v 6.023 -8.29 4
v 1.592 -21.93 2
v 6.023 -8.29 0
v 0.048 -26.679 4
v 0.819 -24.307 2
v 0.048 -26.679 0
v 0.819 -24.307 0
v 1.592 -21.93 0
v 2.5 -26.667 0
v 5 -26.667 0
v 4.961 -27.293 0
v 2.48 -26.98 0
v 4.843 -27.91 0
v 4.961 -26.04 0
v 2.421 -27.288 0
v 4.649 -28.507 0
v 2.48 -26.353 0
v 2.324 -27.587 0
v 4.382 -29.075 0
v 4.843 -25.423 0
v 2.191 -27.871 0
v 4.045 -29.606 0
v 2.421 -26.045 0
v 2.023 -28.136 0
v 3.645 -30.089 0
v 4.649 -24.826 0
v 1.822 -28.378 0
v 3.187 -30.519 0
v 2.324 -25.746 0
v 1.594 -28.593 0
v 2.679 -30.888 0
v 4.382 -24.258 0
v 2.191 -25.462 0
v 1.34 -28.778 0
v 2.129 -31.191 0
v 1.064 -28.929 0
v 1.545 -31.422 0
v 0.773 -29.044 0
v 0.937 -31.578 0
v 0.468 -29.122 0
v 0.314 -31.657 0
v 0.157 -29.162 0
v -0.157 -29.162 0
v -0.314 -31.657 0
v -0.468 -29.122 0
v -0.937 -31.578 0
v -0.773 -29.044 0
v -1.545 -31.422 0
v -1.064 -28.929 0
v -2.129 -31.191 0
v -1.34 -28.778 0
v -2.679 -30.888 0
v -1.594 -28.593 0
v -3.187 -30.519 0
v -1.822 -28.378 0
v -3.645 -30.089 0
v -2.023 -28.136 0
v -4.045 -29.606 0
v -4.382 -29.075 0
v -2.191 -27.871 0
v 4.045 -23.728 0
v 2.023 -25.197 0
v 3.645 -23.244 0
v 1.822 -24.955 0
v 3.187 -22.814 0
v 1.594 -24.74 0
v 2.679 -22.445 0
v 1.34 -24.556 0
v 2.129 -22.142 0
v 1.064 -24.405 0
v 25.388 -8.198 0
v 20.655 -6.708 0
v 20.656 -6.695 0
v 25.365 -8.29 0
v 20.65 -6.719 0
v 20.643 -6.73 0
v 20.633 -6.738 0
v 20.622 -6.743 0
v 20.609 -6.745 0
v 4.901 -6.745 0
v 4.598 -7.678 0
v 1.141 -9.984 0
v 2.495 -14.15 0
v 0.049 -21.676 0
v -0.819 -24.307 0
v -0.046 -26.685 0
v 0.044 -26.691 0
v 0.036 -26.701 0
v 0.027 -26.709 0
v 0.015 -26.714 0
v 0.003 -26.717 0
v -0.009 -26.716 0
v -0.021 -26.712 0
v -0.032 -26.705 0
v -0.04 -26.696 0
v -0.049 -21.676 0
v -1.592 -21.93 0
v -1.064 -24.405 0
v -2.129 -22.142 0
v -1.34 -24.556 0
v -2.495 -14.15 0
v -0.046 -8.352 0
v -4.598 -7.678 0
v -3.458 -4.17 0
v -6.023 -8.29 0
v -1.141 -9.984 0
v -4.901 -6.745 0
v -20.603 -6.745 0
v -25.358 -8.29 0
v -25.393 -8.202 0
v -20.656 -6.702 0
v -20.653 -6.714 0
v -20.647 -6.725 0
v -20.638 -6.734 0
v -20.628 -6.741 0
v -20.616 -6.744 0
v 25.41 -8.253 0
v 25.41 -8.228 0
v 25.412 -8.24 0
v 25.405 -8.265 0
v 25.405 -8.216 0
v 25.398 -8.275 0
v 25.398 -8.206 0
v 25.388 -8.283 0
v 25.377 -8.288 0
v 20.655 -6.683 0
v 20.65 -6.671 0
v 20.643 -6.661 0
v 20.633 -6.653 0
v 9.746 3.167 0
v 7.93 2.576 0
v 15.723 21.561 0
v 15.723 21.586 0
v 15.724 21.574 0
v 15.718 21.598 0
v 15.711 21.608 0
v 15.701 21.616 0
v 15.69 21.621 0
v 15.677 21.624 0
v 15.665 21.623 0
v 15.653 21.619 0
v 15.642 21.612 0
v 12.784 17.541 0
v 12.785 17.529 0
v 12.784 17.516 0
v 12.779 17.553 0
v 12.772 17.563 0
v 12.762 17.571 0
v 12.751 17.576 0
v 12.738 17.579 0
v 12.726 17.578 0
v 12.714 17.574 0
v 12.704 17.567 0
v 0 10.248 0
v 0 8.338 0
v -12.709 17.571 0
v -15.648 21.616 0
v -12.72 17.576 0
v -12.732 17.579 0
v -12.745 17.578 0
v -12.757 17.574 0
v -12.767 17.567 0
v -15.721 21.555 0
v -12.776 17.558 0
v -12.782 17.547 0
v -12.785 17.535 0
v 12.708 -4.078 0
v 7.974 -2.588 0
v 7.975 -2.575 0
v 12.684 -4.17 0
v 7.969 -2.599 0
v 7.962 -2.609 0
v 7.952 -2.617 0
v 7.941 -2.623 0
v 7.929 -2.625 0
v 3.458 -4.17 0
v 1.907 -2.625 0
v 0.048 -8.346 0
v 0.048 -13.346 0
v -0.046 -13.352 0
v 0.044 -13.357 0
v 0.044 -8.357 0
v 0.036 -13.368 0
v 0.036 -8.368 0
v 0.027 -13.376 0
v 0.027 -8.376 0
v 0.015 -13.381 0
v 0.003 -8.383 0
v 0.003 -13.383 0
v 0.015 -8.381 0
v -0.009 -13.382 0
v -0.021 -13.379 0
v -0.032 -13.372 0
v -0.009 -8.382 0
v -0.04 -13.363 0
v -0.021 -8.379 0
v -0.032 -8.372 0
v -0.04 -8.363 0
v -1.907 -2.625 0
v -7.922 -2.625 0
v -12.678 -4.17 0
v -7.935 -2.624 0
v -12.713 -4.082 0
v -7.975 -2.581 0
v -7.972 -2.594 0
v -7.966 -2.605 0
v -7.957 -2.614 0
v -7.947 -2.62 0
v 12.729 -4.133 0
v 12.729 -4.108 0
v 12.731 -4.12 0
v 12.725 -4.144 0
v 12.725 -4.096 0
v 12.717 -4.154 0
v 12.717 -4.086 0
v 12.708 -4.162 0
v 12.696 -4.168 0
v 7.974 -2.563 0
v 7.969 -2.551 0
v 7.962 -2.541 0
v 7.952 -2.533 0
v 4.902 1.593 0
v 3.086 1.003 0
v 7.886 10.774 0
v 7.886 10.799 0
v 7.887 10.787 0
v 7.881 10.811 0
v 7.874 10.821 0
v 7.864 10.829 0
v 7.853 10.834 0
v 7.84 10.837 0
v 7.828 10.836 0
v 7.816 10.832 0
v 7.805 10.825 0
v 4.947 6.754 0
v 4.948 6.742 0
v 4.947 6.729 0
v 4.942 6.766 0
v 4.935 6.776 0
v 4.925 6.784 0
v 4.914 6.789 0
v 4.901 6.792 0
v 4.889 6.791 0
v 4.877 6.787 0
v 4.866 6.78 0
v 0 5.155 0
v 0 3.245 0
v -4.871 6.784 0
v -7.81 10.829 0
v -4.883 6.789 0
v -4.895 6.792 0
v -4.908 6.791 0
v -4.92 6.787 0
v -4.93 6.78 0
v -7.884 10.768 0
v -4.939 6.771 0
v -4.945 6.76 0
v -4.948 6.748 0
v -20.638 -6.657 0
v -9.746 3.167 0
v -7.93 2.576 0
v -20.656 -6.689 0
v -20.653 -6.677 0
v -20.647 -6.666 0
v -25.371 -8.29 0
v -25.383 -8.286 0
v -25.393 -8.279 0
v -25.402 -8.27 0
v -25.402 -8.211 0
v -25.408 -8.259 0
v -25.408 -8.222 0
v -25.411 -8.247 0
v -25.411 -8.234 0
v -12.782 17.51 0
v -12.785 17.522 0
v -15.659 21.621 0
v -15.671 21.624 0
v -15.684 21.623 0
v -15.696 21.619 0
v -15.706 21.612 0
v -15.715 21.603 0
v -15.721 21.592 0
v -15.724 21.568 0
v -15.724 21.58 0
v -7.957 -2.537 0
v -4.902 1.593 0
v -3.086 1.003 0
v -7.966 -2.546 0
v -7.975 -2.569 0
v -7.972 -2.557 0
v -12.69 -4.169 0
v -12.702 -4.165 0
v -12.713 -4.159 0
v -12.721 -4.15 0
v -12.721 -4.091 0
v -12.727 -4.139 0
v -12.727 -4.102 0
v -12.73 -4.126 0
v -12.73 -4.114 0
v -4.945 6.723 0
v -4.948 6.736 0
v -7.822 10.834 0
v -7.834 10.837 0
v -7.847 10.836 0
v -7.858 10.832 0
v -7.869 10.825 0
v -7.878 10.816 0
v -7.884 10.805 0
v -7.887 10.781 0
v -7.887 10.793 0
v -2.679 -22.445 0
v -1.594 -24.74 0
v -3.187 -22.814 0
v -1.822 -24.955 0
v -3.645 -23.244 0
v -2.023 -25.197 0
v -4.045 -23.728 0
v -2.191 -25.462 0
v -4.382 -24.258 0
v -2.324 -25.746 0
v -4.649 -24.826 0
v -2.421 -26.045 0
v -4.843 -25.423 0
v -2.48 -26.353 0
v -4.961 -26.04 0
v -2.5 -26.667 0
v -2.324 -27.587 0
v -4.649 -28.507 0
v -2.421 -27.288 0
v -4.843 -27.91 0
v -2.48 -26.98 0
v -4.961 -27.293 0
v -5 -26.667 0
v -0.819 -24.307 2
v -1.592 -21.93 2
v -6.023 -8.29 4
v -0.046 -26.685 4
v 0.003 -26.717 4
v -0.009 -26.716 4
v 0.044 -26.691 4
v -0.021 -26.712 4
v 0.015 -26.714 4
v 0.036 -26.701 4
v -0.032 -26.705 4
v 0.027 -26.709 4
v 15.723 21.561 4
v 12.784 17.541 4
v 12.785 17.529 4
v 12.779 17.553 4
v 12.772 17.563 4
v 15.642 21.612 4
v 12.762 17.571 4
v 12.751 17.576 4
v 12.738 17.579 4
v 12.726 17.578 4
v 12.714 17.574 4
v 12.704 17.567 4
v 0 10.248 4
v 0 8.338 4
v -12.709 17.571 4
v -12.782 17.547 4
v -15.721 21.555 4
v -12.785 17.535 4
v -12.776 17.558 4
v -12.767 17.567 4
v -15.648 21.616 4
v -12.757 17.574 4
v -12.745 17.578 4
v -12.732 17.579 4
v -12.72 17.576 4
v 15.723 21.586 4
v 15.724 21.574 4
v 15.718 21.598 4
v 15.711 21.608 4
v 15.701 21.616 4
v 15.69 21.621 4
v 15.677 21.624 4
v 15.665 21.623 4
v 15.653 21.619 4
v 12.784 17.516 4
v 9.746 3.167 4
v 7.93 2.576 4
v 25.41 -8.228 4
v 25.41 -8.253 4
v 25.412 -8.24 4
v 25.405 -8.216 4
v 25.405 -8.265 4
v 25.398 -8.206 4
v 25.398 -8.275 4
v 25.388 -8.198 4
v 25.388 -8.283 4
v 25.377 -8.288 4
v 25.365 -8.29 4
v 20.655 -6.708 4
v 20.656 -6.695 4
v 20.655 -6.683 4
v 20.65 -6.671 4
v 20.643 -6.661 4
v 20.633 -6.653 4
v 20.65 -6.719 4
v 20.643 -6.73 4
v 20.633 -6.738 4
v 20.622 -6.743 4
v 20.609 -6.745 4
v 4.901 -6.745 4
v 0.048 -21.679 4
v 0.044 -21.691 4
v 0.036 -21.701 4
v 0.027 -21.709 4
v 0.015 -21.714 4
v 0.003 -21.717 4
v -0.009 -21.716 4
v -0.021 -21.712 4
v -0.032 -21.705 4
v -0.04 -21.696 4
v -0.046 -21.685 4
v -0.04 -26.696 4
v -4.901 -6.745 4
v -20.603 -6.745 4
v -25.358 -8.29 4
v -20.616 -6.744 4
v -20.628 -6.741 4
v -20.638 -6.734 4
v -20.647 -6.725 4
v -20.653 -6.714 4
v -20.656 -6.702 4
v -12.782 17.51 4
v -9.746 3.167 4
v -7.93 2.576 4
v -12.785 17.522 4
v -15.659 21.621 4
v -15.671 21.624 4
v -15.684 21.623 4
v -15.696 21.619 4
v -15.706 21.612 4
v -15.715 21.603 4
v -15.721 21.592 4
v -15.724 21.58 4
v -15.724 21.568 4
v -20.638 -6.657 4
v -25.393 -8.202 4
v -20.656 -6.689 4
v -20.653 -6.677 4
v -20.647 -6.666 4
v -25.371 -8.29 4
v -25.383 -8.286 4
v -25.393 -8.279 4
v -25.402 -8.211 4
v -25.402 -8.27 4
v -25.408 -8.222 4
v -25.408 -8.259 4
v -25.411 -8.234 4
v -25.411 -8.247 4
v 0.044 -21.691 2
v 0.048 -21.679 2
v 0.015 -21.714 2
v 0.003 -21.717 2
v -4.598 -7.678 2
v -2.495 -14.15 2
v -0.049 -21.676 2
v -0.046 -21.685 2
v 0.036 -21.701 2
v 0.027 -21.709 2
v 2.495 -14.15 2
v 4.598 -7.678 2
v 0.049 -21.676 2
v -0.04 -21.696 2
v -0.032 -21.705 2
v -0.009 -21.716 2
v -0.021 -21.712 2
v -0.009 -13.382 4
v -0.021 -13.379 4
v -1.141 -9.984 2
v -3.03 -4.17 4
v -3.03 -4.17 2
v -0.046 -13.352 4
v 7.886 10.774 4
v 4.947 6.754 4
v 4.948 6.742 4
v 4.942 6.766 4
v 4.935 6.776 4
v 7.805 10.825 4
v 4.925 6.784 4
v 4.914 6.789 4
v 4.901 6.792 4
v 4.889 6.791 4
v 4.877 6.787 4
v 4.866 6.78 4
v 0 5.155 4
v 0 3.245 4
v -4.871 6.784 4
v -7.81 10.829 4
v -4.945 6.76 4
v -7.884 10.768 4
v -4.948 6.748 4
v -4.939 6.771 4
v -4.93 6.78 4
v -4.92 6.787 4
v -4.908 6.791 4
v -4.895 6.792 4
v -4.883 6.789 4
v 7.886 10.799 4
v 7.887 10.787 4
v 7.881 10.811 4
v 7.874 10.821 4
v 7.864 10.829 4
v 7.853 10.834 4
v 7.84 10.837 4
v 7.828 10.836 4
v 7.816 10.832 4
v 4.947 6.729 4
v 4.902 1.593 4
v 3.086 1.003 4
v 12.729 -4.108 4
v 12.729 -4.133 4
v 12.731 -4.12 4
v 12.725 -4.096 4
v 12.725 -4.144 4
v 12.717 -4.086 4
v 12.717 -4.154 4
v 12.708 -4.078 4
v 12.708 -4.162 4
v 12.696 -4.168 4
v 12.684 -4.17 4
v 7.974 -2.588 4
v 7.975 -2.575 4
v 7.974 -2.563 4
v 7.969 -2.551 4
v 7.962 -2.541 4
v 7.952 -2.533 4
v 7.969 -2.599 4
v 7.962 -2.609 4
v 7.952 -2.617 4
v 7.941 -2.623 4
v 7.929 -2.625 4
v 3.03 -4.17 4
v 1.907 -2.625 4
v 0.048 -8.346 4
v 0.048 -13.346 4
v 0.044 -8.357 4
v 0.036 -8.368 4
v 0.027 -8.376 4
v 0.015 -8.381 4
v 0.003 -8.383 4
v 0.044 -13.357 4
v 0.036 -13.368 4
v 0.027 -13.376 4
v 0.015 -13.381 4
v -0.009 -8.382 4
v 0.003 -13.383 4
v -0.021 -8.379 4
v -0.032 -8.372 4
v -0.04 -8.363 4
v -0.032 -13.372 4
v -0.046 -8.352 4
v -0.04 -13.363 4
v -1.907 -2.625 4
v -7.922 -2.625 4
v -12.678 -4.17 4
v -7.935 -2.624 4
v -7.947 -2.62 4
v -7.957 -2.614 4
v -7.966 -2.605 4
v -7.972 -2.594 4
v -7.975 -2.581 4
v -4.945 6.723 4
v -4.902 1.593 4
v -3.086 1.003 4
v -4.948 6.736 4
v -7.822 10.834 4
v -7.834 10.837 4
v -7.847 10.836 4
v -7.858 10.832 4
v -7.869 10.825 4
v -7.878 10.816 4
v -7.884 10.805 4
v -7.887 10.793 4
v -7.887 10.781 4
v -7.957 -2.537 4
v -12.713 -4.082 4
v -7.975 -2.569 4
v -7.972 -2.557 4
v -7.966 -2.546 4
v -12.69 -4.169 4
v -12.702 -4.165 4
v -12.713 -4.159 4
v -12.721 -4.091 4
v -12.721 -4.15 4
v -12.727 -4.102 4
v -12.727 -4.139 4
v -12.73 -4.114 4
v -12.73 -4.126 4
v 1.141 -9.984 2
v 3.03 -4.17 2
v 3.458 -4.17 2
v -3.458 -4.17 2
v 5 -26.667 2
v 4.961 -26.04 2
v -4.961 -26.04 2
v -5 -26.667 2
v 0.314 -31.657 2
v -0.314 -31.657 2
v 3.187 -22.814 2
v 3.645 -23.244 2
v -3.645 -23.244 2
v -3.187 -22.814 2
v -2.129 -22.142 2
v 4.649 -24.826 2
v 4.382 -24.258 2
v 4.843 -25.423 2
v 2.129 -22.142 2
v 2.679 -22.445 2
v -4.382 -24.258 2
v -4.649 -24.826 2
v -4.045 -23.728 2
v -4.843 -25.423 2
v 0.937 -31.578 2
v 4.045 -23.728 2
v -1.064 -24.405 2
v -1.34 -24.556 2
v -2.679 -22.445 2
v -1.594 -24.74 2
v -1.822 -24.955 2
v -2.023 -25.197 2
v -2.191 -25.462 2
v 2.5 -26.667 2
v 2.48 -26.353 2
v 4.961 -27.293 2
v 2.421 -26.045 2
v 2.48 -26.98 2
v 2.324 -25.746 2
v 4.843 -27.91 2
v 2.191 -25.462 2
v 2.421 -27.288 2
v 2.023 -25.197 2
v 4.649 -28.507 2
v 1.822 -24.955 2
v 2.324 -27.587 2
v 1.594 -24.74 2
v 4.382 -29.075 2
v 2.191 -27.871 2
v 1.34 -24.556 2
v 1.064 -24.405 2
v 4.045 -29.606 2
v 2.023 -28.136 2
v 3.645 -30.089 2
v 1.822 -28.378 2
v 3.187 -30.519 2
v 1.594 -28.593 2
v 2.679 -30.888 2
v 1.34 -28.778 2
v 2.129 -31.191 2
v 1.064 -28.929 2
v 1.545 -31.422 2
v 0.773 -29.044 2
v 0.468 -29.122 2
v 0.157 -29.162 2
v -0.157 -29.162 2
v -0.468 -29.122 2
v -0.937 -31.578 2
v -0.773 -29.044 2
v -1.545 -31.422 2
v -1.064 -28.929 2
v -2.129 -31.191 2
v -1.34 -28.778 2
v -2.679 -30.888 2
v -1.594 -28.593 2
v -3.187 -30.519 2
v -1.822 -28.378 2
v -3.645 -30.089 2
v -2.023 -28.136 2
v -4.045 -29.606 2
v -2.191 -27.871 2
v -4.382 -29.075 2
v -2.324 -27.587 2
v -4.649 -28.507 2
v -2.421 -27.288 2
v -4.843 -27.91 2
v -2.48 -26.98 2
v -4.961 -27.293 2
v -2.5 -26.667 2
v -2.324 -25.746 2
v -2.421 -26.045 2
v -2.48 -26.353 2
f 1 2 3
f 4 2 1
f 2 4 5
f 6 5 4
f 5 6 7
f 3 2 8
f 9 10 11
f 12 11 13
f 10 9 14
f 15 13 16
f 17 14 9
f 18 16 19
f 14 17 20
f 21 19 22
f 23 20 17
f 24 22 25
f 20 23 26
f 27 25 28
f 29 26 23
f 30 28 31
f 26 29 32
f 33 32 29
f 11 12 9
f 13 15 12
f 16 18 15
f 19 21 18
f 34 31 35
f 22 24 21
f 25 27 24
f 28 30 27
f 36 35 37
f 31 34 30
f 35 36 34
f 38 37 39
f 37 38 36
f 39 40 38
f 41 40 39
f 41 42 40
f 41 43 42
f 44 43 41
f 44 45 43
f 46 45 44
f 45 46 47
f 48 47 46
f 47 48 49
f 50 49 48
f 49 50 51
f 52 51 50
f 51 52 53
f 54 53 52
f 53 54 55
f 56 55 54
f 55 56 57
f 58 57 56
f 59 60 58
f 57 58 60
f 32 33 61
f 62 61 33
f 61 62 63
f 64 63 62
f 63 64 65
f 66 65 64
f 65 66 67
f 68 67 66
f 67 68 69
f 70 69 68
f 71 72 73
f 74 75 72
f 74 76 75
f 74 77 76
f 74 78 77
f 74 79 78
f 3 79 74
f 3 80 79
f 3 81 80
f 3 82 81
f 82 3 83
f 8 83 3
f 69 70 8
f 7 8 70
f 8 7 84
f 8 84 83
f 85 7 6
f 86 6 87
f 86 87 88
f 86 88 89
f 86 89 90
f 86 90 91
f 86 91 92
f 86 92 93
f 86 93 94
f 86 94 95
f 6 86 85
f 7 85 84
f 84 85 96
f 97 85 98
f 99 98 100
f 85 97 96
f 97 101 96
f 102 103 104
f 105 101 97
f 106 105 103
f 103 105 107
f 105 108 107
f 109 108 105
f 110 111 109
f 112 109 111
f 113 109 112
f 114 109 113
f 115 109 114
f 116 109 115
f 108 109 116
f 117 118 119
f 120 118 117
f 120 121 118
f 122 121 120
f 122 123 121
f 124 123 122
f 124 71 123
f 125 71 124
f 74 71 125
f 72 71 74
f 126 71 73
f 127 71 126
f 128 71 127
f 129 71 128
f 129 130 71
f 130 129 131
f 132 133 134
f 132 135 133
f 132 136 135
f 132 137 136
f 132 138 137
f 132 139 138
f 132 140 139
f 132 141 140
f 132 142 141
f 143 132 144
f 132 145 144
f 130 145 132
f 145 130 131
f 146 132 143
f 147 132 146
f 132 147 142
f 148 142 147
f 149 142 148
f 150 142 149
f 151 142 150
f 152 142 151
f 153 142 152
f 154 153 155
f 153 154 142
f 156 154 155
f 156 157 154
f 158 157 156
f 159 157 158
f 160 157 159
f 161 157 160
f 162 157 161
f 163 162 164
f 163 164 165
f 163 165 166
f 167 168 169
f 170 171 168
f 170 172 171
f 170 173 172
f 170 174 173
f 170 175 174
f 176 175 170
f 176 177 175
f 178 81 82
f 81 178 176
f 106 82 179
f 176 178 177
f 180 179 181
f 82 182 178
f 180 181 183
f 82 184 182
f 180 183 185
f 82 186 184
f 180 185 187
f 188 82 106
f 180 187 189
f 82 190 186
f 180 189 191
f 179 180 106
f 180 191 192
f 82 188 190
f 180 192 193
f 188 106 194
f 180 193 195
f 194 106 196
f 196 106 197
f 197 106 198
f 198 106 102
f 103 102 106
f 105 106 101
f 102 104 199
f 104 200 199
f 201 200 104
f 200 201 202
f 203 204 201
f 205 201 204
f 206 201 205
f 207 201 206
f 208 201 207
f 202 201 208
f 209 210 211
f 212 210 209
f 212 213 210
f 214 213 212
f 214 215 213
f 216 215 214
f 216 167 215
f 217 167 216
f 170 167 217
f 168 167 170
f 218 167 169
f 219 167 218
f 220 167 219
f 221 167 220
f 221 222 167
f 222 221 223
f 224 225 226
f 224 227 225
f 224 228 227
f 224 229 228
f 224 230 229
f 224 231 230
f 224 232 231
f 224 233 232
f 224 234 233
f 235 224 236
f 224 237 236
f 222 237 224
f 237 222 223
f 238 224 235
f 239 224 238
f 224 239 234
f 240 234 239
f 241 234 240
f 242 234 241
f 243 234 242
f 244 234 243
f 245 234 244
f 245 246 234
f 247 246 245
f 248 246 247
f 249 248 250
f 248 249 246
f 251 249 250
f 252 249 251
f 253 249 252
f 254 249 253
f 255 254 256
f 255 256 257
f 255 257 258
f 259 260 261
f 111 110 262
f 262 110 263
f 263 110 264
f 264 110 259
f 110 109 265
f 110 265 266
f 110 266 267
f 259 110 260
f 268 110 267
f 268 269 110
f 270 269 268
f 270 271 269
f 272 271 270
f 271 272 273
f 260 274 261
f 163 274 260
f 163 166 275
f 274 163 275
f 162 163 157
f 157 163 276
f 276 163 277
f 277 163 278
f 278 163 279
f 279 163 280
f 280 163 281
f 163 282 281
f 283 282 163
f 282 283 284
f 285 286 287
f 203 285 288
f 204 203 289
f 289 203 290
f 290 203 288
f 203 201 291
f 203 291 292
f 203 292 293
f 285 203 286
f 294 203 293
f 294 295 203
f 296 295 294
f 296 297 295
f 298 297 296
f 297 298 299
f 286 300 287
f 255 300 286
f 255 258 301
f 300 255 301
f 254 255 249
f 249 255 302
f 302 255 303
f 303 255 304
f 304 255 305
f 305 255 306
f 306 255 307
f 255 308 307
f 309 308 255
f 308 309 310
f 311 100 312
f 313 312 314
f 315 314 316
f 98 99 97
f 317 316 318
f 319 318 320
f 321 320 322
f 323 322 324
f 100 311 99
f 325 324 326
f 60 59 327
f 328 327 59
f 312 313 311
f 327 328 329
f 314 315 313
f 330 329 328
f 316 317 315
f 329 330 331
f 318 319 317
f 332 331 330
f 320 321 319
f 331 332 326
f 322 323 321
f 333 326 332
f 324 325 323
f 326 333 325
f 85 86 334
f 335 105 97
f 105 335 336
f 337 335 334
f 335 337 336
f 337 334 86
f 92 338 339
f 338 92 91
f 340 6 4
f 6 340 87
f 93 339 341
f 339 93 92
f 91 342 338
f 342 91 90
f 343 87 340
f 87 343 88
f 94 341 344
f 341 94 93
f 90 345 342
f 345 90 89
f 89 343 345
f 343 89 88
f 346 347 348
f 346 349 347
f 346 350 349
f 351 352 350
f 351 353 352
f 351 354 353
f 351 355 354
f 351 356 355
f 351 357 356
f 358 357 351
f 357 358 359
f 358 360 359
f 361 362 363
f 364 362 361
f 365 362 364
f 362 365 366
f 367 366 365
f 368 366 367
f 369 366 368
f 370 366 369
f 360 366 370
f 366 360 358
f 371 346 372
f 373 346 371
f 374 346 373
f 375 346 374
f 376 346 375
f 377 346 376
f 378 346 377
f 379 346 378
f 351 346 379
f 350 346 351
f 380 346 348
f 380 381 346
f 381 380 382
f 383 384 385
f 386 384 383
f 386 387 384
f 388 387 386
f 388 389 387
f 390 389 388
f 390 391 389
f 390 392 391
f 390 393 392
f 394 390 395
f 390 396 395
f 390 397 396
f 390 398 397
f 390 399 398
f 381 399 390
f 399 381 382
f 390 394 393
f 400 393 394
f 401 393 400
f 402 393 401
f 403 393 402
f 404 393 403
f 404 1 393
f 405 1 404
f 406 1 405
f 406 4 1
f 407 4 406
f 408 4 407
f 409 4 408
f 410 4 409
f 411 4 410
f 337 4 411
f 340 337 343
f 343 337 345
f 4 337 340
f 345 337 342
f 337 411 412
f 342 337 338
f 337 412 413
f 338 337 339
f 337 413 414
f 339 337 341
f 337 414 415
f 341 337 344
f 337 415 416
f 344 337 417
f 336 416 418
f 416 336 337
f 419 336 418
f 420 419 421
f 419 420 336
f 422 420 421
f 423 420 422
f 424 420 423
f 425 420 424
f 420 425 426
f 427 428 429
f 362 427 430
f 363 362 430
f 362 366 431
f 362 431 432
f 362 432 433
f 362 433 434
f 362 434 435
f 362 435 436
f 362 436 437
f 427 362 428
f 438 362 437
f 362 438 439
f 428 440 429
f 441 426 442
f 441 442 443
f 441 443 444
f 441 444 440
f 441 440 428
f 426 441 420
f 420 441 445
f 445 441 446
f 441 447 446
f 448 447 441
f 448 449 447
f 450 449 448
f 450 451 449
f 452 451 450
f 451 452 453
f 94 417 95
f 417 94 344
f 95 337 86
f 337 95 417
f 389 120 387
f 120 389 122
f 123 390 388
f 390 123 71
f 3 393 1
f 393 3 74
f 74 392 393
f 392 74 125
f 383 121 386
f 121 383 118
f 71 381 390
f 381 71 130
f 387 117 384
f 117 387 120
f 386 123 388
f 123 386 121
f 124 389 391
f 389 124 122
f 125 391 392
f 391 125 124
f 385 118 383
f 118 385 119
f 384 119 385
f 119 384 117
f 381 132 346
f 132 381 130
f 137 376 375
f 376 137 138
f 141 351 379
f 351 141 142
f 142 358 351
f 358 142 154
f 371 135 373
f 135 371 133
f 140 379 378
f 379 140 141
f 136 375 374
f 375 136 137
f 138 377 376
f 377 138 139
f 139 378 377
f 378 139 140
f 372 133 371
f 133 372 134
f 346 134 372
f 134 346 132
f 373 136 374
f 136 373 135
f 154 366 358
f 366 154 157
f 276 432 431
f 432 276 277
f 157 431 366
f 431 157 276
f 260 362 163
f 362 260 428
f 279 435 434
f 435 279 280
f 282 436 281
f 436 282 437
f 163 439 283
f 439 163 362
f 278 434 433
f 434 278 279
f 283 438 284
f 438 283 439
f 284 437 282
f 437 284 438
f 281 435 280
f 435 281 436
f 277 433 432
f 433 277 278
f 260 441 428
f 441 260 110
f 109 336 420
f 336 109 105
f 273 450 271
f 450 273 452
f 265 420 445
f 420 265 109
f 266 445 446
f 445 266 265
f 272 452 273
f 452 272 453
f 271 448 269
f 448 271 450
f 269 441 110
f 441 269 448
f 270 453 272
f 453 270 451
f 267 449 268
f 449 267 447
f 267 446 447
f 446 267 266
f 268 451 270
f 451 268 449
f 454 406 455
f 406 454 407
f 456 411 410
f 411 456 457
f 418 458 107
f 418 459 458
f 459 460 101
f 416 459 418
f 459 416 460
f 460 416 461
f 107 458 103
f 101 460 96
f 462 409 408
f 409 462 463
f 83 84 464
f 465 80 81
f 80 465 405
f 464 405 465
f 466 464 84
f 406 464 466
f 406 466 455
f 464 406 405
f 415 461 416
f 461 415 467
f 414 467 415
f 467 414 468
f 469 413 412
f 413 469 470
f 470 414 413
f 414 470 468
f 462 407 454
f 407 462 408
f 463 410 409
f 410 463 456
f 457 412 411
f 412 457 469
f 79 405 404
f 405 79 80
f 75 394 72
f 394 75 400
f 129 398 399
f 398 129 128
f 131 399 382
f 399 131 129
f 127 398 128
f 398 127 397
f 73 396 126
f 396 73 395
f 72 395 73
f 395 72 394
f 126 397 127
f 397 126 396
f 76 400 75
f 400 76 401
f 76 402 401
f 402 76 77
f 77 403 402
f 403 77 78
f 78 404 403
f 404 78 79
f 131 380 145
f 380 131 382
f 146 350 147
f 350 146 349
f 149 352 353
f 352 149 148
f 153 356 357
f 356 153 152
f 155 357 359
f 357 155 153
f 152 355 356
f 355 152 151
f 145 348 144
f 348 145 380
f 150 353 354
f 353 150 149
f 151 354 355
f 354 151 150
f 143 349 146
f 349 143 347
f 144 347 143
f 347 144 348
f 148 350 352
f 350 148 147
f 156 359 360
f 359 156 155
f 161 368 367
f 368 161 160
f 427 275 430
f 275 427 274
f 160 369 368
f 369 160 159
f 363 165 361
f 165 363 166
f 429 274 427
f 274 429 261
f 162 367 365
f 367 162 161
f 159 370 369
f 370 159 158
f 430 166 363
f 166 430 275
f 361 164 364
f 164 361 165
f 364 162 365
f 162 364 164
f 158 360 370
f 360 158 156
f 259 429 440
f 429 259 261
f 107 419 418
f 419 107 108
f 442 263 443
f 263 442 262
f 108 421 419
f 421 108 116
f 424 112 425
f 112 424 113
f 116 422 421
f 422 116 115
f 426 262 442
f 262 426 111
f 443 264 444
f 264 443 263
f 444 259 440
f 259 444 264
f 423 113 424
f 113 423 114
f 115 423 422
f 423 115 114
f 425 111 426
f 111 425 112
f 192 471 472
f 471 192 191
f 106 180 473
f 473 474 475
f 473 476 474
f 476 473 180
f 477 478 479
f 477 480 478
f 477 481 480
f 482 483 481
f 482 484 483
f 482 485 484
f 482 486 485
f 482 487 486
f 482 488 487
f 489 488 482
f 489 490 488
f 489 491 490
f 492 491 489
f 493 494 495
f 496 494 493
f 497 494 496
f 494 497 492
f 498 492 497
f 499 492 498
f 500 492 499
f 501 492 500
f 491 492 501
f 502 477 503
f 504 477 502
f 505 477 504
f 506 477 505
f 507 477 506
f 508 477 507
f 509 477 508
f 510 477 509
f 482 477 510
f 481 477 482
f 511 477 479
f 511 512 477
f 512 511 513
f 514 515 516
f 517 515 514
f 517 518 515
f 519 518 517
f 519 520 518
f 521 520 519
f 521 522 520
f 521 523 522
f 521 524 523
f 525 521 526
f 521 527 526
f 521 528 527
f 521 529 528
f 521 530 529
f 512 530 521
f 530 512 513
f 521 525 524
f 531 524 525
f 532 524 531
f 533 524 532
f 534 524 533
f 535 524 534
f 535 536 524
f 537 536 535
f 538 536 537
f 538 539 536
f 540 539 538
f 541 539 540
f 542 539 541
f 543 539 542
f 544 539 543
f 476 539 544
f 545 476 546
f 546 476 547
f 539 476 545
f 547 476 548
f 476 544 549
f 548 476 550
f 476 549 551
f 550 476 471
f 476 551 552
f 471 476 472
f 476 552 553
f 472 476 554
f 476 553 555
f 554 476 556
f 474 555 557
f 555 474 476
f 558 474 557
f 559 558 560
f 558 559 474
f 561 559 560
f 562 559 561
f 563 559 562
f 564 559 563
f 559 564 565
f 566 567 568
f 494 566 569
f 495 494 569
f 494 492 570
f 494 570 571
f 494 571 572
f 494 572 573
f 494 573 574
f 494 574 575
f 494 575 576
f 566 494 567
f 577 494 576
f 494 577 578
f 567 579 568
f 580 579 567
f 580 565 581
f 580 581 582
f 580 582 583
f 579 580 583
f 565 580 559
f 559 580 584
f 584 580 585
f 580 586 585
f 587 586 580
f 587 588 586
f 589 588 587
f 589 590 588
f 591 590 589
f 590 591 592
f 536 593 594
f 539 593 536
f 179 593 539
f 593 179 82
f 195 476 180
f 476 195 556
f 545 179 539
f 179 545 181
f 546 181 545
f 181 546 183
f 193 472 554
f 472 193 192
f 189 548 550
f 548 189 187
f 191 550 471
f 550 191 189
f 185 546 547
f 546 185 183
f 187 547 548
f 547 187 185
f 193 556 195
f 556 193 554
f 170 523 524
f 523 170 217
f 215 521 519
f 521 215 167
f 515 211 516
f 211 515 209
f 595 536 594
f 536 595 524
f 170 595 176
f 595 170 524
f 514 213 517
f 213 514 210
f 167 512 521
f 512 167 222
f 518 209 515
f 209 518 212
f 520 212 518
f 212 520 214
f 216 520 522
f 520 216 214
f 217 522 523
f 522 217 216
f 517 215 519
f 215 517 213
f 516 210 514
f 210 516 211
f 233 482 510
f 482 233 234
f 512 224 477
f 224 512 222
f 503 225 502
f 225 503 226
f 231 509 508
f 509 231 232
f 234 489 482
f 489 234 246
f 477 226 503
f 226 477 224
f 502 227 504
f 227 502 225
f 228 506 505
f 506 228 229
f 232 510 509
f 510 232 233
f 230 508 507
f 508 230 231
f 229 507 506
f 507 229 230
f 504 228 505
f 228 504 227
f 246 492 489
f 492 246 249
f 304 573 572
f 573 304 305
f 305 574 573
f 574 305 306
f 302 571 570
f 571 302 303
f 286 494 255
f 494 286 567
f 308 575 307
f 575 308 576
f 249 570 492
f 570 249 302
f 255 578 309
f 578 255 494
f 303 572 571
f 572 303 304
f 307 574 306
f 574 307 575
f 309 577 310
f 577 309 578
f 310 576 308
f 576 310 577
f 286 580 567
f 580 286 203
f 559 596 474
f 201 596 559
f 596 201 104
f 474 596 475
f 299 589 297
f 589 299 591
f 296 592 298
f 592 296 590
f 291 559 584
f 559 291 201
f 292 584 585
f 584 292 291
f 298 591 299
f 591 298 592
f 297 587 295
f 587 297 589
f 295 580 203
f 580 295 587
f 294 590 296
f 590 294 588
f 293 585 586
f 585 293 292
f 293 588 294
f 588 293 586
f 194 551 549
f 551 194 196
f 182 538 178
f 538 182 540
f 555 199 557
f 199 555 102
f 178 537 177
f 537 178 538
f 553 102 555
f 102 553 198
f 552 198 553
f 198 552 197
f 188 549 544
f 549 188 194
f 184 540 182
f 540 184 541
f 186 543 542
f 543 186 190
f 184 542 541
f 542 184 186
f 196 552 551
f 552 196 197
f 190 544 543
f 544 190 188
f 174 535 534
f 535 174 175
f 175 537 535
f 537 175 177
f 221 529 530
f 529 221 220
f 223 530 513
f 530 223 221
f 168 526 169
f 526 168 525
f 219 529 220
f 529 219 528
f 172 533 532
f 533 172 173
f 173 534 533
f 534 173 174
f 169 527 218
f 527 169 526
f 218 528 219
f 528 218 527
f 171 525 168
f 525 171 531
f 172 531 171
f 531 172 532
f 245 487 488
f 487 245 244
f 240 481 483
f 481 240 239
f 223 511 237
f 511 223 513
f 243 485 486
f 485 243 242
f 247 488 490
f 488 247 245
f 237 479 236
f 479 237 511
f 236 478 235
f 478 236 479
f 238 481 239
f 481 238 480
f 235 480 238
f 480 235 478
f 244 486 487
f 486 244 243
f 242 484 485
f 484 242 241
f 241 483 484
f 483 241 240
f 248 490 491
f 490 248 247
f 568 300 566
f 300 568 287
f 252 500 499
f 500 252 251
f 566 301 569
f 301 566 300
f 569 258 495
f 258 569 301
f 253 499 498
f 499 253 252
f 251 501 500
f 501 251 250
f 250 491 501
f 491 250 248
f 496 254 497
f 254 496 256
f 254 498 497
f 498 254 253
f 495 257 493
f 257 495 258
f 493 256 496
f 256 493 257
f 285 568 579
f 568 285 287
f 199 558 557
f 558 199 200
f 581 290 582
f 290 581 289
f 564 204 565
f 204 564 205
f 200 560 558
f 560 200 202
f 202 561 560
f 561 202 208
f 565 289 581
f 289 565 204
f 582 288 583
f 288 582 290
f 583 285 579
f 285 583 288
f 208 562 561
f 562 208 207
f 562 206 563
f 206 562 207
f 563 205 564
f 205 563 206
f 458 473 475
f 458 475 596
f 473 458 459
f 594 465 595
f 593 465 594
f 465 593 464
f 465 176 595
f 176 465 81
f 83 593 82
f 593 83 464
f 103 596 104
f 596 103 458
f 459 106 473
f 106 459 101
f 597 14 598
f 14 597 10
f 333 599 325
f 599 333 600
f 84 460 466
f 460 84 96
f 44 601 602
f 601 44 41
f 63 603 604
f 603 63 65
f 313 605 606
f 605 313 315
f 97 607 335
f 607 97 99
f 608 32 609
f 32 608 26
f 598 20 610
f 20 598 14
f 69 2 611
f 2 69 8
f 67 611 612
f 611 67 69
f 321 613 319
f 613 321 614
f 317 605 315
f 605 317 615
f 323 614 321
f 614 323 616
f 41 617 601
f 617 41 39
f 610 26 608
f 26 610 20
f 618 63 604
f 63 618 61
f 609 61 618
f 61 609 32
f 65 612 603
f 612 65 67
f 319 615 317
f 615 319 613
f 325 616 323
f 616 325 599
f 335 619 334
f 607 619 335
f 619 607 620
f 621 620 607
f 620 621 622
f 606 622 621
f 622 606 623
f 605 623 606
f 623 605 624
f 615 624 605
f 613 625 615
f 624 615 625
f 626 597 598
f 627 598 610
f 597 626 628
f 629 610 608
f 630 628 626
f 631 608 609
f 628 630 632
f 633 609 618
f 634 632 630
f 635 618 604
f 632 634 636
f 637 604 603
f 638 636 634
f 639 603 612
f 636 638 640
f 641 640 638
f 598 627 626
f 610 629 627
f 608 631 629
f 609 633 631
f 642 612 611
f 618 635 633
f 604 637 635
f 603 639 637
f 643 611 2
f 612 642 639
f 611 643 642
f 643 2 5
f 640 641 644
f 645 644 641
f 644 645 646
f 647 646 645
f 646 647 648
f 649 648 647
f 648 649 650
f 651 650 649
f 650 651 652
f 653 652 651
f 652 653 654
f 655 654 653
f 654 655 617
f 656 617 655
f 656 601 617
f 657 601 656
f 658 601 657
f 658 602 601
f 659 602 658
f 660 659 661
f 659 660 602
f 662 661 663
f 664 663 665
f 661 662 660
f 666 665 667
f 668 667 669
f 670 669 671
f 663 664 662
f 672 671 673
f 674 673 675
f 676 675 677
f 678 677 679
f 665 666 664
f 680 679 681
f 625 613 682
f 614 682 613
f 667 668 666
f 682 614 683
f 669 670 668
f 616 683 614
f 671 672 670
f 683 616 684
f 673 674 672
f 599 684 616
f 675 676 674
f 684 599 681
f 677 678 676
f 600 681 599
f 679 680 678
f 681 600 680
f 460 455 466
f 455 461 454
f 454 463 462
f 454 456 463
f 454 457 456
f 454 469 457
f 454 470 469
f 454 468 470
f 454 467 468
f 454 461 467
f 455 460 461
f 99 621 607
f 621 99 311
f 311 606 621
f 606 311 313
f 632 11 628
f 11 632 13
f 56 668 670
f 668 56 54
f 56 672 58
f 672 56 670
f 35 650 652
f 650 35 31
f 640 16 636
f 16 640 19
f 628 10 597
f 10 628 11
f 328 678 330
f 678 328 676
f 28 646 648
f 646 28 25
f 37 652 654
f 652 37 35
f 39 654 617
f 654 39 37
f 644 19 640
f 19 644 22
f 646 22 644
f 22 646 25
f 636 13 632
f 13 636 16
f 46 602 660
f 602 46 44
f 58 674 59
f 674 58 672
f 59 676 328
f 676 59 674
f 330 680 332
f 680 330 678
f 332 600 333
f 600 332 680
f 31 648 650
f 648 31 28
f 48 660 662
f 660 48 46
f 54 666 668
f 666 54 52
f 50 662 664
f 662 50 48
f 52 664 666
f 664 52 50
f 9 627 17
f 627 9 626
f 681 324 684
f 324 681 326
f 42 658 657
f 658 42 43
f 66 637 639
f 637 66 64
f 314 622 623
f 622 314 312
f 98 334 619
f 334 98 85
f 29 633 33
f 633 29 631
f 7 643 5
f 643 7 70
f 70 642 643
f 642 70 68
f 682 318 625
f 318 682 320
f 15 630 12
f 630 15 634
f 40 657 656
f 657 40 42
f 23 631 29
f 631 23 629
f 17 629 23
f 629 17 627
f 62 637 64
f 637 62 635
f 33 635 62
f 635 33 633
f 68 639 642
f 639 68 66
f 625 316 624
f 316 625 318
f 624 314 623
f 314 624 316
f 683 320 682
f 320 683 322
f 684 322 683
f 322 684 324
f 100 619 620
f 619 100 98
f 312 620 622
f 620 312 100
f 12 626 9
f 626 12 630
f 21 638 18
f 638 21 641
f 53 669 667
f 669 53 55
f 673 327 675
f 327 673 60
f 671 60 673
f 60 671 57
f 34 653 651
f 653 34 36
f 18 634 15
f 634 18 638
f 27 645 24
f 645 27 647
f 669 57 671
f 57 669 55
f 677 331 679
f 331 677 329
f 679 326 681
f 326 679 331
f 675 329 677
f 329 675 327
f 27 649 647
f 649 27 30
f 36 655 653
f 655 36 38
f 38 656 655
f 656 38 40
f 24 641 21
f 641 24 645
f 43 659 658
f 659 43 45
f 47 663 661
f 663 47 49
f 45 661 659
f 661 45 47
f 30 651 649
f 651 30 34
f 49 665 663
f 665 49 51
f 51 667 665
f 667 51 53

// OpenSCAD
// file: star_3d.scad
/** star_3d.scad  
 *  
 *  Author:             Mike Beyerle (mbeyerle116)
 *  Downloaded from:    https://www.thingiverse.com/thing:1118817/
 */


// number of points on the star (3 or more makes sense)
_points = 7;
// length of ech point from center.  1/2 the rounding value will be added to the length
_point_len = 25;
// used to adjust width of each point +/-
_adjust = 0;
// point height at end of points (thinkness of objet at thinest part. Should be less than cent_h
_pnt_h = 1;
// height at center of star. set equal to pnt_h for flat object
_cent_h = 3;
// diameter of rounding at end of point (must be greater than 0).
_rnd=1;

// resolution for rounded point
_fn = 25;


// modules in library:
module star_3d(points, point_len, adjust=0, pnt_h =1, cent_h=1, rnd=0.1, fn=25)
{
    // star_3d: star with raised center.
    //----------------------------------------------//
    // points = num points on star (should be >3.  
    //          Using 3 may require addisional 
    //          adjust be applied.)
    // point_len = len of point on star 
    //              (actual len of point will add 
    //              1/2 rnd to the length.)
    // adjust = +/- adjust of width of point
    // pnt_h = height of star at end of point
    // cent_h = height of star in center needs to be > pnt_h to have effect.
    // rnd = roundness of end of point (diameter)
    // fn = $fn value for rounded point
    //----------------------------------------------//
    
    point_deg= 360/points;
    point_deg_adjusted = point_deg + (-point_deg/2) +  adjust;
    
    if(points == 3 && adjust == 0)
    {  // make a pyramid (this is to avoid rendering 
       //            issues in this special case)
        hull()
        {
           for(i=[0:2])
           {
               rotate([0,0,i*point_deg])
               translate([point_len,0,0])
                    cylinder(pnt_h, d=rnd, $fn=fn);
           }
           cylinder(cent_h, d=.001);
        }
    }
    else
    { // use algorithm
        for(i=[0:points-1])
        {
            rotate([0,0,i * point_deg]) 
                translate([0,-point_len,0]) 
                point(point_deg_adjusted, 
                      point_len, 
                      rnd, 
                      pnt_h, 
                      cent_h, 
                      fn);
        }
    }

}

module point(deg, leng, rnd, h1, h2, fn=25)
{   // create a point of the star.
    hull()
    {
        cylinder(h1, d=rnd, $fn=fn);
        translate([0,leng,0]) cylinder(h2, d=.001);
        rotate([0,0,-deg/2]) 
            translate([0,leng,0]) cylinder(h1, d=rnd);
        rotate([0,0,deg/2]) 
            translate([0,leng,0]) cylinder(h1, d=rnd);
    }
}


// test object:
star_3d(
    points      = 5,
    point_len   = 0.9*10,
    adjust      = 0
//        pnt_h = _pnt_h, 
//        cent_h =_cent_h, 
//        rnd = _rnd,
//        fn = _fn
);
// main file
use <star_3d.scad>

module duta_hvezda(
    cipu        = 5,
    velikost    = 40,
    vyska       = 2,
    tloustka    = 5
) {
    difference() {
        star_3d( points=cipu, point_len=velikost, pnt_h=vyska, cent_h=vyska );
        translate([0,0,-vyska])
            star_3d( points=cipu, point_len=(velikost-tloustka), pnt_h=3*vyska, cent_h=3*vyska );
    }
}

module nausnice(
    cipu        = 5,
    velikost    = 40,
    vyska       = 2,
    pocet       = 4,
    tloustka    = 5,
    vypln_vyska = 1
) {
    // jednotlive hvezdy ---------------------------------------------
    rozdil = velikost/pocet;
    for ( i = [0:(pocet-1)] )
        duta_hvezda( cipu, velikost-i*rozdil, vyska, tloustka );

    // spojeni hvezd -------------------------------------------------
    difference() {
        // vypln jen v horni polovine a uvnitr hvezdy
        intersection() {
            star_3d( points=cipu, point_len=velikost, pnt_h=vyska, cent_h=vyska );
            translate([-1/2,-1,0]*velikost)
                cube([velikost,velikost,vypln_vyska]);

            for ( i=[1.5,-1.5] )
                rotate([0,0,i*360/cipu ])
                    cube( [2*velikost,vyska,2*vypln_vyska], center=true );
        }
        // a vyriznuta vnitrni hvezda
        delka_vnitrnich_cipu    = velikost - tloustka - (pocet-1)*rozdil;
        star_3d( points=cipu, point_len=delka_vnitrnich_cipu, pnt_h=vyska, cent_h=vyska );
    }
    // krouzek na zaveseni -------------------------------------------
    translate([0,-velikost,0])
    difference() {
        cylinder( r=tloustka, h=vypln_vyska );
        cylinder( d=tloustka, h=2*(vypln_vyska+vyska), center=true );
    }
}


cipu        = 5;
velikost    = 40;
vyska       = 4;
pocet       = 3;

tloustka    = 5;

vypln_vyska = 2;

// o jednu hvezdu mene
//velikost    = velikost * (pocet-1)/pocet;
//pocet       = pocet - 1;
velikost = 40 * 2/3;
pocet    = 3 - 1;

nausnice( cipu, velikost, vyska, pocet, tloustka, vypln_vyska, $fn=50 );
